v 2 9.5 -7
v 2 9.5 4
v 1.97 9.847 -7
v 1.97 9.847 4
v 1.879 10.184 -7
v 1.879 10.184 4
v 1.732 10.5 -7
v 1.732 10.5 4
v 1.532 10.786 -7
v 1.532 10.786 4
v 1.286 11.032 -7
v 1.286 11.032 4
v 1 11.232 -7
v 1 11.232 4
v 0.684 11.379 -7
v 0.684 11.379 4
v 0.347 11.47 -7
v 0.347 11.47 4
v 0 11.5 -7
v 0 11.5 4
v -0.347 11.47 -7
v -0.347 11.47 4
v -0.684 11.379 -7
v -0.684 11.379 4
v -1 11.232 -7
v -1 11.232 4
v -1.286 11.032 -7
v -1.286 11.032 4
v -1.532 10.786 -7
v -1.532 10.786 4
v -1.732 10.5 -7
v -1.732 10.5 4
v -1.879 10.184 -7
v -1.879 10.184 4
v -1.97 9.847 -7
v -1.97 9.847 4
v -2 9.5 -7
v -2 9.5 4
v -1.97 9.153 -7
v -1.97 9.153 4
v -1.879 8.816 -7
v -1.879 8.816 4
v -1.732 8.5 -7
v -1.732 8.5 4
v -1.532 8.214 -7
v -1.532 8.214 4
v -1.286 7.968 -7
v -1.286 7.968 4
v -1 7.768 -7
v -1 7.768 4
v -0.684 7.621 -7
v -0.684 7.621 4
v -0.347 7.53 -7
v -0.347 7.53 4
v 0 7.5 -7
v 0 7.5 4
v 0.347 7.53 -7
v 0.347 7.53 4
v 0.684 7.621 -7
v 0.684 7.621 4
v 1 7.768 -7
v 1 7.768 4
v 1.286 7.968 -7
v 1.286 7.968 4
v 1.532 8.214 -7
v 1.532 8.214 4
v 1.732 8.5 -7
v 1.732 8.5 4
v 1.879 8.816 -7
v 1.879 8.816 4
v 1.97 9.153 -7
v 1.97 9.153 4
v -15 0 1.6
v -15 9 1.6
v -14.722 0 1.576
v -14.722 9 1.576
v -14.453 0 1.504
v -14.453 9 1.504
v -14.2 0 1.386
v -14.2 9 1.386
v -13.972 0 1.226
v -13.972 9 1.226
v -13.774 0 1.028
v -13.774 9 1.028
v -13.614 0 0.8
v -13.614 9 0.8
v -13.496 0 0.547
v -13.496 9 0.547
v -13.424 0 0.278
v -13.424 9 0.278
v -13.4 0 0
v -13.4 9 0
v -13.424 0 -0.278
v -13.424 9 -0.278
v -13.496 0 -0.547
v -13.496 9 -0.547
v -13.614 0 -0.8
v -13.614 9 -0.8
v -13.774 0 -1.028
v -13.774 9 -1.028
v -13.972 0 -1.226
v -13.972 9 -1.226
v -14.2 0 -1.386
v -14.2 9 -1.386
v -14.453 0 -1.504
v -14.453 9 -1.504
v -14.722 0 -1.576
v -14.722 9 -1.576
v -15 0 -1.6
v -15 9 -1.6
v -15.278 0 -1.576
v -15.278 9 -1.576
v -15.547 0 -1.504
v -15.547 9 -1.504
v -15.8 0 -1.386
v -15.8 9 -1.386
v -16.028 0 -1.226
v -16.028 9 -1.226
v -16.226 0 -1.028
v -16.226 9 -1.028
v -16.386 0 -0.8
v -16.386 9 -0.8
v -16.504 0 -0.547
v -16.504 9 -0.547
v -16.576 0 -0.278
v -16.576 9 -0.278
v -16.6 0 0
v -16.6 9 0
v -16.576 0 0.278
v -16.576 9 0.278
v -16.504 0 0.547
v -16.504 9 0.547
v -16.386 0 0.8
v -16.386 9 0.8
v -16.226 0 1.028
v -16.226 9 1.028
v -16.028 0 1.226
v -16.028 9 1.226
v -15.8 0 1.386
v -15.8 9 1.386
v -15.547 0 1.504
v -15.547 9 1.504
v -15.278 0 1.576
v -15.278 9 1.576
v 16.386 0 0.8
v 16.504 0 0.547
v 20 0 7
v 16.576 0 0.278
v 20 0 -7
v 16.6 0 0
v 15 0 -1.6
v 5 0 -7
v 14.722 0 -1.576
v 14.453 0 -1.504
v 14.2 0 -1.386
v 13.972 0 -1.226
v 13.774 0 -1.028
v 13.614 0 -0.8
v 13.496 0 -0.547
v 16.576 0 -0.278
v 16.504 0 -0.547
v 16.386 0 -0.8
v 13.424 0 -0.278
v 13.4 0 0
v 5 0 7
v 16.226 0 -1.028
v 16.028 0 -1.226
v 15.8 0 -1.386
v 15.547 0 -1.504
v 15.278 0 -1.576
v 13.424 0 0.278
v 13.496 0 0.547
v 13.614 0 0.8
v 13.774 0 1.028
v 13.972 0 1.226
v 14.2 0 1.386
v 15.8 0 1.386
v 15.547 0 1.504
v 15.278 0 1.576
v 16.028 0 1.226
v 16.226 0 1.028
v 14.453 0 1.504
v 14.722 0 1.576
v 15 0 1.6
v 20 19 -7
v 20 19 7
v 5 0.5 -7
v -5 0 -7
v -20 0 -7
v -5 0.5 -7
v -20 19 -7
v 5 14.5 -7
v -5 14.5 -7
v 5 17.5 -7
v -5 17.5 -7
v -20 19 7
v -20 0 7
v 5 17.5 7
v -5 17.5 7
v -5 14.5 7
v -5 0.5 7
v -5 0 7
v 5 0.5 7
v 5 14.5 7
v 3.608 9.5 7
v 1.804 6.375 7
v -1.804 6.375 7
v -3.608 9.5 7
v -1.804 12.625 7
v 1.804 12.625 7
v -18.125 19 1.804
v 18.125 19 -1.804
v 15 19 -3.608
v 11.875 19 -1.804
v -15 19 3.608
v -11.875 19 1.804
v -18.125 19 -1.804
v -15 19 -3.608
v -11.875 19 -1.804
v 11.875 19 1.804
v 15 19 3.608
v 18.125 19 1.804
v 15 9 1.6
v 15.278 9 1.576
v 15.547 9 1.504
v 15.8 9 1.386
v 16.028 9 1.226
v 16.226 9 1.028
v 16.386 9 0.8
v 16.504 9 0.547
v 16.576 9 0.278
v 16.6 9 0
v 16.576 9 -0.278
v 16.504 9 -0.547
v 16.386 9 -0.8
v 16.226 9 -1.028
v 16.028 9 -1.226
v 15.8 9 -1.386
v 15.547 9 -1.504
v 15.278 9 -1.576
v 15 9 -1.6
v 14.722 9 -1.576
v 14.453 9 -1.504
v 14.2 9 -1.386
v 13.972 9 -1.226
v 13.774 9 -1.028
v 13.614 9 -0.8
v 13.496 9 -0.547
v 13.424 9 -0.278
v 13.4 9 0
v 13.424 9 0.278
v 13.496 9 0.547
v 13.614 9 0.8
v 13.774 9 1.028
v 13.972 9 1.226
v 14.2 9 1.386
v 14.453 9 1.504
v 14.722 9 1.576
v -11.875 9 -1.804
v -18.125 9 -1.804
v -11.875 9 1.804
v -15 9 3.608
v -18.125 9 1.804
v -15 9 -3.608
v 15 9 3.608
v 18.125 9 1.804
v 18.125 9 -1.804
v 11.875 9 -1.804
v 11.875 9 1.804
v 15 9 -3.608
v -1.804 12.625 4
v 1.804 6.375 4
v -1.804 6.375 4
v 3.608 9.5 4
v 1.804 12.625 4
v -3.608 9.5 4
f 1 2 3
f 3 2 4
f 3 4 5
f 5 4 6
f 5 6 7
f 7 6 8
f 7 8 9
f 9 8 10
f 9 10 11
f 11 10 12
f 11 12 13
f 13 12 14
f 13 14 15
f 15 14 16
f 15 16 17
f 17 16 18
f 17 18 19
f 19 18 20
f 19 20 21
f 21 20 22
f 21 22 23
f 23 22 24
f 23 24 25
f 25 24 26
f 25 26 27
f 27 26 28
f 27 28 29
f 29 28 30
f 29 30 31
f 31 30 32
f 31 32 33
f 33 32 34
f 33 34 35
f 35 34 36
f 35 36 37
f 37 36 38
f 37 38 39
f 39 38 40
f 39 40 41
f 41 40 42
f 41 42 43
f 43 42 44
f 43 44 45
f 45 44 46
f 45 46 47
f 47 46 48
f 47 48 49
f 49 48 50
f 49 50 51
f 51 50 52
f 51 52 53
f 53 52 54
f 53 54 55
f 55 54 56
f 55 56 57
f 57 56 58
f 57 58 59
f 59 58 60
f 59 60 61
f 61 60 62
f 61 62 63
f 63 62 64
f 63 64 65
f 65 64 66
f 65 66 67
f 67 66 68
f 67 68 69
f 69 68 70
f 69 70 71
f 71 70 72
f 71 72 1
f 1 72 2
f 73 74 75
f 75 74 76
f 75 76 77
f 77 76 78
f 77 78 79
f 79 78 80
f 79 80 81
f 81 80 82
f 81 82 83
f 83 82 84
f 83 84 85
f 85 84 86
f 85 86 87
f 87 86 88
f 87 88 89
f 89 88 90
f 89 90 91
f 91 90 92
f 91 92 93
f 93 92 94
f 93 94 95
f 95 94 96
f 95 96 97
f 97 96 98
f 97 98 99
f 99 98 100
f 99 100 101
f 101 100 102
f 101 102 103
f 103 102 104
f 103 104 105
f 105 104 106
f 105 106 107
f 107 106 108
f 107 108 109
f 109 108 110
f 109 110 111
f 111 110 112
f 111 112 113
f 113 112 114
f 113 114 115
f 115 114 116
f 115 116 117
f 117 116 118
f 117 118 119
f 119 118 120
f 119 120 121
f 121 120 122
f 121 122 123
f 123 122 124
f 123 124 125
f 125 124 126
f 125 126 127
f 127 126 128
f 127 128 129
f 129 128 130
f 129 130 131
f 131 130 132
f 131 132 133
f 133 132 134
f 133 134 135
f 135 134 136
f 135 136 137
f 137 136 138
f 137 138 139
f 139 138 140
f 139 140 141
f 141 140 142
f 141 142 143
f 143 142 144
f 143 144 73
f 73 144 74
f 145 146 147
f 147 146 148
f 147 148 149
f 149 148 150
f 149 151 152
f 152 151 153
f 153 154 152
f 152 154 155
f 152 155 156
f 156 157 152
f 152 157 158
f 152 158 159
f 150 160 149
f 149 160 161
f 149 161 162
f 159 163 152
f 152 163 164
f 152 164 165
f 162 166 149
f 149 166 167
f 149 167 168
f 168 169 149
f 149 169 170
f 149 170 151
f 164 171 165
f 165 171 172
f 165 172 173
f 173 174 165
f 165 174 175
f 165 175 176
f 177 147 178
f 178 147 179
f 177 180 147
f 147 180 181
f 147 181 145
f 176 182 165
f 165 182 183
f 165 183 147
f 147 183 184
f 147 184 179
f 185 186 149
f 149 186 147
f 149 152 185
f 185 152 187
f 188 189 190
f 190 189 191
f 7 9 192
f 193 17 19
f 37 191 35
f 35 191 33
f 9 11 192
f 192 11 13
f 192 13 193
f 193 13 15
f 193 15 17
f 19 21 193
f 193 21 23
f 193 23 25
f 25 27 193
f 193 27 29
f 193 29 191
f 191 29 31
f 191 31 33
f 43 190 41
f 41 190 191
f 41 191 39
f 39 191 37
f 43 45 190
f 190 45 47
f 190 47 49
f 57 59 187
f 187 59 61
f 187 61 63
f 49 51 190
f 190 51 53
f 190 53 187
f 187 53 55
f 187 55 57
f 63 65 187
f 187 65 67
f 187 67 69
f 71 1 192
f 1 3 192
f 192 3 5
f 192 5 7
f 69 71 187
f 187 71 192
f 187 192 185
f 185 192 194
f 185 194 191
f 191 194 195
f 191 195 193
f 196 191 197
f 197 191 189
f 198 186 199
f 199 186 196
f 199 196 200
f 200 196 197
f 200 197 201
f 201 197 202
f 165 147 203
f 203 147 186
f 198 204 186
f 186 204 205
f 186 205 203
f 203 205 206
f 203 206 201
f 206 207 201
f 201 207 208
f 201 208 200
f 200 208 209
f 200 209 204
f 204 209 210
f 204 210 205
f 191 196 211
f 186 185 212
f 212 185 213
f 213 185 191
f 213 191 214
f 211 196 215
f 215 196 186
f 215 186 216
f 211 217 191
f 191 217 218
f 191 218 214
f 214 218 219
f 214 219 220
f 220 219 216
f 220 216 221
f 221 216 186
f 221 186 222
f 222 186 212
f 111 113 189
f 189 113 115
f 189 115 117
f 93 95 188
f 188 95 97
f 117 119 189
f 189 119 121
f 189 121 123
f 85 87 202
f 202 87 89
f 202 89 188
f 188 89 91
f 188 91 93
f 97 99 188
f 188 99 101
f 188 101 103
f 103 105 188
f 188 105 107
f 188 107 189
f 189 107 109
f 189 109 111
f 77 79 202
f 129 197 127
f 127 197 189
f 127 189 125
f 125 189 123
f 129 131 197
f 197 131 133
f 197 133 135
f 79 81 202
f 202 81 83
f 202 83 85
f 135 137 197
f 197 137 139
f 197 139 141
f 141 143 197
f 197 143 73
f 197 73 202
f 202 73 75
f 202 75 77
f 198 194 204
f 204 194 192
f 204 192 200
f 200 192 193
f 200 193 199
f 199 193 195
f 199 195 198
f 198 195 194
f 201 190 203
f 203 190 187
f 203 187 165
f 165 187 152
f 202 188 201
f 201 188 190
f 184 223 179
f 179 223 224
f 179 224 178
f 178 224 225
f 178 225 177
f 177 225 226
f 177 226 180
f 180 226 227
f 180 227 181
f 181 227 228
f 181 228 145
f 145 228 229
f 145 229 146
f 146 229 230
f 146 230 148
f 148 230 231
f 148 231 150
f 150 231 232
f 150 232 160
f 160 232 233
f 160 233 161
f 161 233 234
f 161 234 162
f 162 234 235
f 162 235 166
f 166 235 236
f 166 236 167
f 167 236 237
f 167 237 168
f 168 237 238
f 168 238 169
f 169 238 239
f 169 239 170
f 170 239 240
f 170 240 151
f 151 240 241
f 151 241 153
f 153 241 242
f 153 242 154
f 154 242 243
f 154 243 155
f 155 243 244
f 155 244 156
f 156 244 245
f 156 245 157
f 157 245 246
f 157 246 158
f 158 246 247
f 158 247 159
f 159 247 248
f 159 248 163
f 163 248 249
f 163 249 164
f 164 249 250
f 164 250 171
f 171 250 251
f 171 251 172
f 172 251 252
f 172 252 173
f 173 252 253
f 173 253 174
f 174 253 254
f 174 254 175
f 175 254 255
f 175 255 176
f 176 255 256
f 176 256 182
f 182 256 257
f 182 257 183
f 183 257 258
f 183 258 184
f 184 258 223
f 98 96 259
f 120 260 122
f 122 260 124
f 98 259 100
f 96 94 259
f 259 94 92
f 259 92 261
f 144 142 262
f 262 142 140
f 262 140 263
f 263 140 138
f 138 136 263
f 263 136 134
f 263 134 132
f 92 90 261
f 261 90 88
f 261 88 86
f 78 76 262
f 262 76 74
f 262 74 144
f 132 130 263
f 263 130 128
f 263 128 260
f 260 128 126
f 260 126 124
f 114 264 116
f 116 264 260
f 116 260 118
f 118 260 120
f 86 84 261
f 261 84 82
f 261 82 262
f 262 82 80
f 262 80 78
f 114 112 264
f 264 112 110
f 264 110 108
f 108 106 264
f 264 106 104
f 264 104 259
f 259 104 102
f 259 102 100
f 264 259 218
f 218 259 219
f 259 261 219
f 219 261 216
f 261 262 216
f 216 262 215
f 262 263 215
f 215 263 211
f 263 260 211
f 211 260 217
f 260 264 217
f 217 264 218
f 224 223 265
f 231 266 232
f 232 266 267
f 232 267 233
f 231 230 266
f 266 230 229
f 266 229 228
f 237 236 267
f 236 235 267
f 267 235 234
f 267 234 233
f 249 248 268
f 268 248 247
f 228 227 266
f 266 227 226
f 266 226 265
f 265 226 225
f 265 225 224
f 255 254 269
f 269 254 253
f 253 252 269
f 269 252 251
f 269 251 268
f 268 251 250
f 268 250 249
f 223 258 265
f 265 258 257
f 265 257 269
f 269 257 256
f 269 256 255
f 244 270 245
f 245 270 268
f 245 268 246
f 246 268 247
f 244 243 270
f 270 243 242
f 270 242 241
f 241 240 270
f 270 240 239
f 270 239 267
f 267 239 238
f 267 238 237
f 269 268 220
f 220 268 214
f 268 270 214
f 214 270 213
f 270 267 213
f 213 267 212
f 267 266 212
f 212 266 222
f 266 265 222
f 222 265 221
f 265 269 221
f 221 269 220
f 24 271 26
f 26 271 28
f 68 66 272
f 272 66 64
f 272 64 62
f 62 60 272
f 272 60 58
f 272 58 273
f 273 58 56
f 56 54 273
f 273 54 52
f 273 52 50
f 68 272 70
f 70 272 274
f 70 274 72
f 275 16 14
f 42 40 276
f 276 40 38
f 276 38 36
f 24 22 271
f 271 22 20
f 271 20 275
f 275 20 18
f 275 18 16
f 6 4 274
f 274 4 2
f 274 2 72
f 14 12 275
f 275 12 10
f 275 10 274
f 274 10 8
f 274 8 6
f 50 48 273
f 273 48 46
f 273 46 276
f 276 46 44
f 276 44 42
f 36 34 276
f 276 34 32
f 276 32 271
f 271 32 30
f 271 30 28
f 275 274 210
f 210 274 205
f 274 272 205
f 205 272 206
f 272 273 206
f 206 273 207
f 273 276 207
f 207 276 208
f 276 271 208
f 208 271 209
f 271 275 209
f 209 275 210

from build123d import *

# Parameters (mm, degrees)
SKETCH1_W           = 40
SKETCH1_H           = 14
BOSS_EXTRUDE1_DEPTH = 19
SKETCH2_W           = 10
SKETCH2_H           = 3
SKETCH2_H_2         = 1
CUT_EXTRUDE1_DEPTH  = 30
SKETCH3_R           = 2
CUT_EXTRUDE2_DEPTH  = 31.935416597
SKETCH4_R           = 1.6
CUT_EXTRUDE3_DEPTH  = 29.460498942
CUT_EXTRUDE4_DEPTH  = 10
CUT_EXTRUDE5_DEPTH  = 3


with BuildPart() as part:
    # Sketch1 → Boss-Extrude1 (new body)
    with BuildSketch(Plane(origin=(0, 0, 0), x_dir=(1, 0, 0), z_dir=(0, 1, 0))):
        Rectangle(SKETCH1_W, SKETCH1_H)
    extrude(amount=BOSS_EXTRUDE1_DEPTH)

    # Sketch2 → Cut-Extrude1 (cut)
    with BuildSketch(Plane.XY.offset(7)):
        with Locations((0, 16)):
            Rectangle(SKETCH2_W, SKETCH2_H)
        Rectangle(SKETCH2_W, SKETCH2_H_2)
    extrude(amount=-CUT_EXTRUDE1_DEPTH, mode=Mode.SUBTRACT)

    # Sketch3 → Cut-Extrude2 (cut, through all)
    with BuildSketch(Plane.XY.offset(7)):
        with Locations((0, 9.5)):
            Circle(SKETCH3_R)
    extrude(amount=-CUT_EXTRUDE2_DEPTH, mode=Mode.SUBTRACT)

    # Sketch4 → Cut-Extrude3 (cut, through all)
    with BuildSketch(Plane(origin=(0, 19, 0), x_dir=(1, 0, 0), z_dir=(0, 1, 0))):
        with Locations(Location((-15, 0, 0), (0, 0, 270))):
            Circle(SKETCH4_R)
        with Locations(Location((15, 0, 0), (0, 0, 90))):
            Circle(SKETCH4_R)
    extrude(amount=-CUT_EXTRUDE3_DEPTH, mode=Mode.SUBTRACT)

    # Sketch9 → Cut-Extrude4 (cut)
    with BuildSketch(Plane(origin=(0, 19, 0), x_dir=(1, 0, 0), z_dir=(0, 1, 0))):
        Polygon((-15, 3.608439182), (-18.125, 1.804219591), (-18.125, -1.804219591), (-15, -3.608439182), (-11.875, -1.804219591), (-11.875, 1.804219591), align=None)
        Polygon((11.875, 1.804219591), (15, 3.608439182), (18.125, 1.804219591), (18.125, -1.804219591), (15, -3.608439182), (11.875, -1.804219591), align=None)
    extrude(amount=-CUT_EXTRUDE4_DEPTH, mode=Mode.SUBTRACT)

    # Sketch10 → Cut-Extrude5 (cut)
    with BuildSketch(Plane.XY.offset(7)):
        Polygon((1.804219591, 12.625), (-1.804219591, 12.625), (-3.608439182, 9.5), (-1.804219591, 6.375), (1.804219591, 6.375), (3.608439182, 9.5), align=None)
    extrude(amount=-CUT_EXTRUDE5_DEPTH, mode=Mode.SUBTRACT)


solid = part.part
